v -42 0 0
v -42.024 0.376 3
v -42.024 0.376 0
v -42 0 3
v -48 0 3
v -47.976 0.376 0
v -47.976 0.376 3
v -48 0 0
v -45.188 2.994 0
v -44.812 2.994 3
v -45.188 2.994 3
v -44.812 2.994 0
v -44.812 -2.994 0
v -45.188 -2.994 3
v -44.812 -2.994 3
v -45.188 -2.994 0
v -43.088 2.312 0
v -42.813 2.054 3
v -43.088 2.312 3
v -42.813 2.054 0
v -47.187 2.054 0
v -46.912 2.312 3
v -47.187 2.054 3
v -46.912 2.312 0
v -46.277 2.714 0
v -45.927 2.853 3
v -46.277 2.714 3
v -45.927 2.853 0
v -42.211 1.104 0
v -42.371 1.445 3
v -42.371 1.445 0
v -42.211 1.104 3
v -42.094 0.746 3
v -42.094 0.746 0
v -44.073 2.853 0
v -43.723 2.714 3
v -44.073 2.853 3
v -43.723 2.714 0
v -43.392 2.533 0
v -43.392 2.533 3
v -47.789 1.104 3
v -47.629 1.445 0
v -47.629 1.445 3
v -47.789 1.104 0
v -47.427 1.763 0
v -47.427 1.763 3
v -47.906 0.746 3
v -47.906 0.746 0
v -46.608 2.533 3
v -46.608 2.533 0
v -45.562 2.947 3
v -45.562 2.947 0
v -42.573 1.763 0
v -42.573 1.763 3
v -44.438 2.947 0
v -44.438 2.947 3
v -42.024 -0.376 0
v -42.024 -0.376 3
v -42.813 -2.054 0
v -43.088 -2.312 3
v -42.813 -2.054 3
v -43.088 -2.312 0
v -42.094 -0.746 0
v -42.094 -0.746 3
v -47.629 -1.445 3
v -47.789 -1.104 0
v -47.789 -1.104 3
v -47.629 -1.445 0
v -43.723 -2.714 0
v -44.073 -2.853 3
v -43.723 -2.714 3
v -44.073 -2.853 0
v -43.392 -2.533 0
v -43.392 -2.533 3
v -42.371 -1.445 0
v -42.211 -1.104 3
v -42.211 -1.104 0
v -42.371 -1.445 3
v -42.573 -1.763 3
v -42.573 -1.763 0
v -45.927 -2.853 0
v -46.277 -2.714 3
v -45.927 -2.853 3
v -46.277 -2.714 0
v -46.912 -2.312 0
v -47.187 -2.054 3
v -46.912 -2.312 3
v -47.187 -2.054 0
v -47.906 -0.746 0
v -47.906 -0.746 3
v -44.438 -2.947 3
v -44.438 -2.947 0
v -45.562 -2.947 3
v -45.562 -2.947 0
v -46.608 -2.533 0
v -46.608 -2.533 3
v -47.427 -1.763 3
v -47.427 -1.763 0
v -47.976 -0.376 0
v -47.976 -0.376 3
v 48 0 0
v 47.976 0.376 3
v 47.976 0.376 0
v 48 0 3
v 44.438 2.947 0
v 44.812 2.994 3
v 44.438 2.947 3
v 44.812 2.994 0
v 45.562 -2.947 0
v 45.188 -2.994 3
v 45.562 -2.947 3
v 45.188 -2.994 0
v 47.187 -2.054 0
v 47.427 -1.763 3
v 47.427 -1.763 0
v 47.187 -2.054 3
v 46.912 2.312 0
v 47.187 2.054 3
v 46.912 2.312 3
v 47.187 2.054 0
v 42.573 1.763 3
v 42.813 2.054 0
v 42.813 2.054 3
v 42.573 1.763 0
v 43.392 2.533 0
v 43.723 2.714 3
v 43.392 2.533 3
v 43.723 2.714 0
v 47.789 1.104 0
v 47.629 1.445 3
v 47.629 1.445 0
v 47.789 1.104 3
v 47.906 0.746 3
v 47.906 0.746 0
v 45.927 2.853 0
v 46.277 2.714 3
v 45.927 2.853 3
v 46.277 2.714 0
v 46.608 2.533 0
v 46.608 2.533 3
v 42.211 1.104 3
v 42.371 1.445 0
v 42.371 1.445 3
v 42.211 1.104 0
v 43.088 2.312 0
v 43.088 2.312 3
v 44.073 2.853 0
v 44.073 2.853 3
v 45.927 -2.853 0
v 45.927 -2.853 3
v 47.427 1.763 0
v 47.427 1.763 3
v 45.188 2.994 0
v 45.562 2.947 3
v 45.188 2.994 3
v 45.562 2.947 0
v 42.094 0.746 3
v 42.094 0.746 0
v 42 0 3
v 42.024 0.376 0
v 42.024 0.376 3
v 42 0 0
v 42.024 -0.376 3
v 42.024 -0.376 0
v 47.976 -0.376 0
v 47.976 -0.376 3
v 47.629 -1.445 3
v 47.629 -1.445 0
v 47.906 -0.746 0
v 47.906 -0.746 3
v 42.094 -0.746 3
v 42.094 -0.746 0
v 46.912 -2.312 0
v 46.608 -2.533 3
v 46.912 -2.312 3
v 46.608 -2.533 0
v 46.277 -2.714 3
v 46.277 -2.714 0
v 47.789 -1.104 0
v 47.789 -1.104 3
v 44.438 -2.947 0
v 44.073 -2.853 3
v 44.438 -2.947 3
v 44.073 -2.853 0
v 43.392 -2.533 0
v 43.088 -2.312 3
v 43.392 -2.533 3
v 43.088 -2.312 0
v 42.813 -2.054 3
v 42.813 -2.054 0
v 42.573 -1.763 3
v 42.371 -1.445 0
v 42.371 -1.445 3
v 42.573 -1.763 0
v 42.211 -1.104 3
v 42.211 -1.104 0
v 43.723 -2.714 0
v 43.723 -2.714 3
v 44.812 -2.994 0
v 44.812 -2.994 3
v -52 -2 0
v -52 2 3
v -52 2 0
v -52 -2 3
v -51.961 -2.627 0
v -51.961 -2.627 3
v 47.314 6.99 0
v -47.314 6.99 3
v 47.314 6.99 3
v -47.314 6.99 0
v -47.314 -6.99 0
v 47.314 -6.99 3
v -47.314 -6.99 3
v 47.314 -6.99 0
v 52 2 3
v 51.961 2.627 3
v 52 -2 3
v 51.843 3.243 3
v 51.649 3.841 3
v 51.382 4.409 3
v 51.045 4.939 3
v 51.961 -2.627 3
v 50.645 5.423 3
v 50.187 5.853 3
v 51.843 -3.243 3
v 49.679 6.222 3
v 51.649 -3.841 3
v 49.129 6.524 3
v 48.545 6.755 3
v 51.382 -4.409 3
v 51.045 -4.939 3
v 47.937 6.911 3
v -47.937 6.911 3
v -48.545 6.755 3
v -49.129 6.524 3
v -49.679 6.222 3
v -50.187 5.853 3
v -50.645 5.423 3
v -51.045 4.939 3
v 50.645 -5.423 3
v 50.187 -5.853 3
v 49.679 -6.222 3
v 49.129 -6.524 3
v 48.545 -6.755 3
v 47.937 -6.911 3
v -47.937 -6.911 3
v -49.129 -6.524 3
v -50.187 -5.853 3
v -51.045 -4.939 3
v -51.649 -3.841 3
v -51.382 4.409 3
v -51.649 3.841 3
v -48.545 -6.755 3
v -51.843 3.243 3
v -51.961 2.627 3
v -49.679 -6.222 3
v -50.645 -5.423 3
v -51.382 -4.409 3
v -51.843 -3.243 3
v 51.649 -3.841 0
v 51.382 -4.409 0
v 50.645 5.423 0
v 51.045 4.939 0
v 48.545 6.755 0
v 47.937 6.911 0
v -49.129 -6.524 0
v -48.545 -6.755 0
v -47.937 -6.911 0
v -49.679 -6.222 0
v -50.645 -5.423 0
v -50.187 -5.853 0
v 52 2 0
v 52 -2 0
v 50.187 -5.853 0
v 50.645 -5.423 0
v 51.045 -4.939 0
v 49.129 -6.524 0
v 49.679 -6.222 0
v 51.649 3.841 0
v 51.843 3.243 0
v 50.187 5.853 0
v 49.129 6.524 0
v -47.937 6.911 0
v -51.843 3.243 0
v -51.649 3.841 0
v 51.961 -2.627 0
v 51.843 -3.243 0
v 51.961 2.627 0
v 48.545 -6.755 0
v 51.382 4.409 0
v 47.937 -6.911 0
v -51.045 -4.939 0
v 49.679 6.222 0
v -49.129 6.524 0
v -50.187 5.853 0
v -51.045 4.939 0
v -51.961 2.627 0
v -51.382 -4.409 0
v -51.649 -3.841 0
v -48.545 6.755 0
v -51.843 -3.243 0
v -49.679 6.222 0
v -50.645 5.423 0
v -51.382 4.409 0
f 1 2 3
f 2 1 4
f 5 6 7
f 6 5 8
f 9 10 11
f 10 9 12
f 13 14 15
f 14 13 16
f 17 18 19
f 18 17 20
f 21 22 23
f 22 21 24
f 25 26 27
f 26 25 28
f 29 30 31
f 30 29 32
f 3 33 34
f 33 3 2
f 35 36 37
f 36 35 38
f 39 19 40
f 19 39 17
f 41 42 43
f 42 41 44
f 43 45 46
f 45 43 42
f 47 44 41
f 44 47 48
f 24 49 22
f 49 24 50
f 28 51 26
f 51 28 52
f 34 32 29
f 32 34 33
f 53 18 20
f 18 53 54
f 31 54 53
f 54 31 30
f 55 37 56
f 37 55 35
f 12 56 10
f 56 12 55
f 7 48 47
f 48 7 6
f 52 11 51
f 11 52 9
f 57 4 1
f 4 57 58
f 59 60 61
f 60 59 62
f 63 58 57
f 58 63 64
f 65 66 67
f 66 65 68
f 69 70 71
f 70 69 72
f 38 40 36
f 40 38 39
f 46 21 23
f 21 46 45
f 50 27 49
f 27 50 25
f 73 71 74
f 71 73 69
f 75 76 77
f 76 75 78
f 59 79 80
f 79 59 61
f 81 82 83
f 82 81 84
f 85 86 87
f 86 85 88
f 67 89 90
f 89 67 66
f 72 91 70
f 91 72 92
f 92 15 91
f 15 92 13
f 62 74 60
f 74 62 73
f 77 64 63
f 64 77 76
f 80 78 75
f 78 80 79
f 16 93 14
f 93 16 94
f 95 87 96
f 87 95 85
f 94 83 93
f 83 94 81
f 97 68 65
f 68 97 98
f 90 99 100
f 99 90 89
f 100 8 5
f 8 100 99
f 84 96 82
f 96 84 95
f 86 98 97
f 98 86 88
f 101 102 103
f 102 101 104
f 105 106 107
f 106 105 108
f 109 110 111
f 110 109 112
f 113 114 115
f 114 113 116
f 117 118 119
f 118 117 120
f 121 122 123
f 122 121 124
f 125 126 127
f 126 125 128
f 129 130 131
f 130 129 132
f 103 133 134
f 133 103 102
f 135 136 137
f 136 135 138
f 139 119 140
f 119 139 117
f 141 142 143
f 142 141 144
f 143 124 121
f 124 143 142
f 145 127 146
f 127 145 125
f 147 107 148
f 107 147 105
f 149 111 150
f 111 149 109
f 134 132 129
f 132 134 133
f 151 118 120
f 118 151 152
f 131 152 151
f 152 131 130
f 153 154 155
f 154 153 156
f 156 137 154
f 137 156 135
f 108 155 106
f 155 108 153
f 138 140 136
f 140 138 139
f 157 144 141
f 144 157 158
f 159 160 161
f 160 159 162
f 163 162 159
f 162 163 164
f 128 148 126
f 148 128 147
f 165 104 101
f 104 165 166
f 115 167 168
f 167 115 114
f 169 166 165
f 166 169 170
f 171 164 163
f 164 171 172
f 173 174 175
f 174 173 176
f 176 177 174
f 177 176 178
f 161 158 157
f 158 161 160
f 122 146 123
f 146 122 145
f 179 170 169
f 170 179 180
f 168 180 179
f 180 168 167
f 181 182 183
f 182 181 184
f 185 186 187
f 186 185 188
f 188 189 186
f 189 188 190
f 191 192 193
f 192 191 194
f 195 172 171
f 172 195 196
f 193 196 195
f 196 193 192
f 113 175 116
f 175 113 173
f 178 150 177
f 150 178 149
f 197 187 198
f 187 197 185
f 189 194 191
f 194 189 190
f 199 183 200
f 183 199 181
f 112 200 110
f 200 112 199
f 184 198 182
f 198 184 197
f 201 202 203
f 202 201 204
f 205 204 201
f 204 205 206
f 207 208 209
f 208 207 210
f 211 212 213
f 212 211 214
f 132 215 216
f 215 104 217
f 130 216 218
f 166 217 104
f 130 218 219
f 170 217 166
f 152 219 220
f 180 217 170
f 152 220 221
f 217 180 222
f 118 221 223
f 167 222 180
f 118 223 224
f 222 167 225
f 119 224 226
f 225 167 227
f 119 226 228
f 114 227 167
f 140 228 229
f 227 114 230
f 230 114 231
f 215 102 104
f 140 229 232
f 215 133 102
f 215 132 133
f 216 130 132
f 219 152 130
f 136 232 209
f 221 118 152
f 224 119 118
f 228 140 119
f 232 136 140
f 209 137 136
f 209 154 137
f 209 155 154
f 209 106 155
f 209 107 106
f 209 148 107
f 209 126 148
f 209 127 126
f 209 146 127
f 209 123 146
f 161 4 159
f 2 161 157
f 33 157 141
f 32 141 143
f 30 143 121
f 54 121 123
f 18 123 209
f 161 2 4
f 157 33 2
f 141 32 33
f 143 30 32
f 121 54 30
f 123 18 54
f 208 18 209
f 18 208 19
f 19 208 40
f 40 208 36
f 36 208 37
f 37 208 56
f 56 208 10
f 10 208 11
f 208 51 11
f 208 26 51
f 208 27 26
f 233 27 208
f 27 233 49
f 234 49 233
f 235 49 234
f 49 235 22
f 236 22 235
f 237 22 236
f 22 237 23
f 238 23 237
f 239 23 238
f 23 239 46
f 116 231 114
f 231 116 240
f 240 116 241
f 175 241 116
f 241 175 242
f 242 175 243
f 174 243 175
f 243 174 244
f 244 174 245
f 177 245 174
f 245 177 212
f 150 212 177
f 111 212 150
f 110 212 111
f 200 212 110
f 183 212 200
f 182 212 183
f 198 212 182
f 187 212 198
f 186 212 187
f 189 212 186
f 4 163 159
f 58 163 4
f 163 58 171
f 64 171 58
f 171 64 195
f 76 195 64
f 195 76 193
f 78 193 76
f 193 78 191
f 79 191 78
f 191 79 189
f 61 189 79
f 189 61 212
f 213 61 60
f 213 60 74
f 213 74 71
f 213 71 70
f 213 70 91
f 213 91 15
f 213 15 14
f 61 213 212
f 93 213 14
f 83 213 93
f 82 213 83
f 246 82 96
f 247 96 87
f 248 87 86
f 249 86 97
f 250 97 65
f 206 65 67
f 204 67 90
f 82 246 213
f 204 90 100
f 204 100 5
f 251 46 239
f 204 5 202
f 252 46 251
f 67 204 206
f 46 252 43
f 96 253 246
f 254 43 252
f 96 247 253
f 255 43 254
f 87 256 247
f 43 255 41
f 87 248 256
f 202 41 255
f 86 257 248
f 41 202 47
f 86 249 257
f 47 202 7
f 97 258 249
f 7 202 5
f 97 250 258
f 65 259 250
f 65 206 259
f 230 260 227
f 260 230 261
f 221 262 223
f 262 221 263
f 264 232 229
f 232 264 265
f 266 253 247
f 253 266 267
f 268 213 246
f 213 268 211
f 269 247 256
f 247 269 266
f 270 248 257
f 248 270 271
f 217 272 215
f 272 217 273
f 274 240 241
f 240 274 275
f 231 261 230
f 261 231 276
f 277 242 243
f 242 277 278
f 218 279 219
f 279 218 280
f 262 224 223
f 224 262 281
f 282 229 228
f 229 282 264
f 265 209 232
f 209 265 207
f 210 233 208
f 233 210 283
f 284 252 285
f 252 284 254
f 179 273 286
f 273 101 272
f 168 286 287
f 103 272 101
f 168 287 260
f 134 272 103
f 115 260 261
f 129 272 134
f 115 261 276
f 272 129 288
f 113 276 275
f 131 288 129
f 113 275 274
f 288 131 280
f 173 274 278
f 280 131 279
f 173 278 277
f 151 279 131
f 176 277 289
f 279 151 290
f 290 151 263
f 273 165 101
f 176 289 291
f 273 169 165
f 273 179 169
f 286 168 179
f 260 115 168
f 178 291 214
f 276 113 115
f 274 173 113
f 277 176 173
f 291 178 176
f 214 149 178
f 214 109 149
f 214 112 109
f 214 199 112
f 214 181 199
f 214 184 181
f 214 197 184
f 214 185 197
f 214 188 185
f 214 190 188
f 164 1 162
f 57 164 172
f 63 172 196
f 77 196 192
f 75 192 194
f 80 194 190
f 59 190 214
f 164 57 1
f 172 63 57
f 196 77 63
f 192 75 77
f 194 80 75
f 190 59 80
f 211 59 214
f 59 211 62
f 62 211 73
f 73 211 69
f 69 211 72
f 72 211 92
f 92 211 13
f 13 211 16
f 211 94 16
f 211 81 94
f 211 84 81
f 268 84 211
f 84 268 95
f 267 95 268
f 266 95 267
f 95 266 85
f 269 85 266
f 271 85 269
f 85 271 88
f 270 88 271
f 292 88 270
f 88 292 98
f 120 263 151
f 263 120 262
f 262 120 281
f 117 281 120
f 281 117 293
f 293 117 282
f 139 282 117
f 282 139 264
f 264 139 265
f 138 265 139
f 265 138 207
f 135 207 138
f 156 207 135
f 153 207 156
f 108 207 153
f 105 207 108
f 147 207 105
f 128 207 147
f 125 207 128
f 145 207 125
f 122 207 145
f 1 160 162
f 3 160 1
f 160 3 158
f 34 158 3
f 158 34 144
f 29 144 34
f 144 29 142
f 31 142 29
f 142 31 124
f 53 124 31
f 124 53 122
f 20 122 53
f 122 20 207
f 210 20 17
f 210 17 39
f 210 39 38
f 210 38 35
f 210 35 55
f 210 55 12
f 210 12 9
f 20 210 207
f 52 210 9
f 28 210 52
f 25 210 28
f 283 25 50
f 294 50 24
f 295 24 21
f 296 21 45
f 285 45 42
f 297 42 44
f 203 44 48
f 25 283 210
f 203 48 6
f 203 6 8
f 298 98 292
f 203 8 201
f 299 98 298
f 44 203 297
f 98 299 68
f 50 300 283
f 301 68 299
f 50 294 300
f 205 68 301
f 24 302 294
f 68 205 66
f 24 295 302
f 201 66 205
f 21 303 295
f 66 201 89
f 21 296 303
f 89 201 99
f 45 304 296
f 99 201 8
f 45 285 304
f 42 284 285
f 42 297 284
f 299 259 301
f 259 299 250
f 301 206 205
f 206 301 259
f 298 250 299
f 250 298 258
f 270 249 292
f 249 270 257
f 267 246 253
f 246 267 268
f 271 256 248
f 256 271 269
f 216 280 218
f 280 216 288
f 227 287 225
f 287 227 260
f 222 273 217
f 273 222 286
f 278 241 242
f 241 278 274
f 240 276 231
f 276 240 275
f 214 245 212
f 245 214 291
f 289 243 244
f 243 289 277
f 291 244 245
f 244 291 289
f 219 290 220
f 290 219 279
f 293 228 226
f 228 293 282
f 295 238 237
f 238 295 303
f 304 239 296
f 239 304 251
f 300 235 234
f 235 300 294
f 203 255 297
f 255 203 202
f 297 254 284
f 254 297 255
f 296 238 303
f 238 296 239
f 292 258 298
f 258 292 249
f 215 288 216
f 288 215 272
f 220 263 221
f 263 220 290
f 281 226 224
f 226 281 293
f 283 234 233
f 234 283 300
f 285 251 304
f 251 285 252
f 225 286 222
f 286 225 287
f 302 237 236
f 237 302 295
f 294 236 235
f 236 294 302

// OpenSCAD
$fn = 50;


difference() {
	union() {
		hull() {
			translate(v = [-47.0000000000, 2.0000000000, 0]) {
				cylinder(h = 3, r = 5);
			}
			translate(v = [47.0000000000, 2.0000000000, 0]) {
				cylinder(h = 3, r = 5);
			}
			translate(v = [-47.0000000000, -2.0000000000, 0]) {
				cylinder(h = 3, r = 5);
			}
			translate(v = [47.0000000000, -2.0000000000, 0]) {
				cylinder(h = 3, r = 5);
			}
		}
	}
	union() {
		translate(v = [-45.0000000000, 0.0000000000, -100.0000000000]) {
			cylinder(h = 200, r = 3.0000000000);
		}
		translate(v = [-45.0000000000, 0.0000000000, -100.0000000000]) {
			cylinder(h = 200, r = 3.0000000000);
		}
		translate(v = [45.0000000000, 0.0000000000, -100.0000000000]) {
			cylinder(h = 200, r = 3.0000000000);
		}
		translate(v = [45.0000000000, 0.0000000000, -100.0000000000]) {
			cylinder(h = 200, r = 3.0000000000);
		}
	}
}
